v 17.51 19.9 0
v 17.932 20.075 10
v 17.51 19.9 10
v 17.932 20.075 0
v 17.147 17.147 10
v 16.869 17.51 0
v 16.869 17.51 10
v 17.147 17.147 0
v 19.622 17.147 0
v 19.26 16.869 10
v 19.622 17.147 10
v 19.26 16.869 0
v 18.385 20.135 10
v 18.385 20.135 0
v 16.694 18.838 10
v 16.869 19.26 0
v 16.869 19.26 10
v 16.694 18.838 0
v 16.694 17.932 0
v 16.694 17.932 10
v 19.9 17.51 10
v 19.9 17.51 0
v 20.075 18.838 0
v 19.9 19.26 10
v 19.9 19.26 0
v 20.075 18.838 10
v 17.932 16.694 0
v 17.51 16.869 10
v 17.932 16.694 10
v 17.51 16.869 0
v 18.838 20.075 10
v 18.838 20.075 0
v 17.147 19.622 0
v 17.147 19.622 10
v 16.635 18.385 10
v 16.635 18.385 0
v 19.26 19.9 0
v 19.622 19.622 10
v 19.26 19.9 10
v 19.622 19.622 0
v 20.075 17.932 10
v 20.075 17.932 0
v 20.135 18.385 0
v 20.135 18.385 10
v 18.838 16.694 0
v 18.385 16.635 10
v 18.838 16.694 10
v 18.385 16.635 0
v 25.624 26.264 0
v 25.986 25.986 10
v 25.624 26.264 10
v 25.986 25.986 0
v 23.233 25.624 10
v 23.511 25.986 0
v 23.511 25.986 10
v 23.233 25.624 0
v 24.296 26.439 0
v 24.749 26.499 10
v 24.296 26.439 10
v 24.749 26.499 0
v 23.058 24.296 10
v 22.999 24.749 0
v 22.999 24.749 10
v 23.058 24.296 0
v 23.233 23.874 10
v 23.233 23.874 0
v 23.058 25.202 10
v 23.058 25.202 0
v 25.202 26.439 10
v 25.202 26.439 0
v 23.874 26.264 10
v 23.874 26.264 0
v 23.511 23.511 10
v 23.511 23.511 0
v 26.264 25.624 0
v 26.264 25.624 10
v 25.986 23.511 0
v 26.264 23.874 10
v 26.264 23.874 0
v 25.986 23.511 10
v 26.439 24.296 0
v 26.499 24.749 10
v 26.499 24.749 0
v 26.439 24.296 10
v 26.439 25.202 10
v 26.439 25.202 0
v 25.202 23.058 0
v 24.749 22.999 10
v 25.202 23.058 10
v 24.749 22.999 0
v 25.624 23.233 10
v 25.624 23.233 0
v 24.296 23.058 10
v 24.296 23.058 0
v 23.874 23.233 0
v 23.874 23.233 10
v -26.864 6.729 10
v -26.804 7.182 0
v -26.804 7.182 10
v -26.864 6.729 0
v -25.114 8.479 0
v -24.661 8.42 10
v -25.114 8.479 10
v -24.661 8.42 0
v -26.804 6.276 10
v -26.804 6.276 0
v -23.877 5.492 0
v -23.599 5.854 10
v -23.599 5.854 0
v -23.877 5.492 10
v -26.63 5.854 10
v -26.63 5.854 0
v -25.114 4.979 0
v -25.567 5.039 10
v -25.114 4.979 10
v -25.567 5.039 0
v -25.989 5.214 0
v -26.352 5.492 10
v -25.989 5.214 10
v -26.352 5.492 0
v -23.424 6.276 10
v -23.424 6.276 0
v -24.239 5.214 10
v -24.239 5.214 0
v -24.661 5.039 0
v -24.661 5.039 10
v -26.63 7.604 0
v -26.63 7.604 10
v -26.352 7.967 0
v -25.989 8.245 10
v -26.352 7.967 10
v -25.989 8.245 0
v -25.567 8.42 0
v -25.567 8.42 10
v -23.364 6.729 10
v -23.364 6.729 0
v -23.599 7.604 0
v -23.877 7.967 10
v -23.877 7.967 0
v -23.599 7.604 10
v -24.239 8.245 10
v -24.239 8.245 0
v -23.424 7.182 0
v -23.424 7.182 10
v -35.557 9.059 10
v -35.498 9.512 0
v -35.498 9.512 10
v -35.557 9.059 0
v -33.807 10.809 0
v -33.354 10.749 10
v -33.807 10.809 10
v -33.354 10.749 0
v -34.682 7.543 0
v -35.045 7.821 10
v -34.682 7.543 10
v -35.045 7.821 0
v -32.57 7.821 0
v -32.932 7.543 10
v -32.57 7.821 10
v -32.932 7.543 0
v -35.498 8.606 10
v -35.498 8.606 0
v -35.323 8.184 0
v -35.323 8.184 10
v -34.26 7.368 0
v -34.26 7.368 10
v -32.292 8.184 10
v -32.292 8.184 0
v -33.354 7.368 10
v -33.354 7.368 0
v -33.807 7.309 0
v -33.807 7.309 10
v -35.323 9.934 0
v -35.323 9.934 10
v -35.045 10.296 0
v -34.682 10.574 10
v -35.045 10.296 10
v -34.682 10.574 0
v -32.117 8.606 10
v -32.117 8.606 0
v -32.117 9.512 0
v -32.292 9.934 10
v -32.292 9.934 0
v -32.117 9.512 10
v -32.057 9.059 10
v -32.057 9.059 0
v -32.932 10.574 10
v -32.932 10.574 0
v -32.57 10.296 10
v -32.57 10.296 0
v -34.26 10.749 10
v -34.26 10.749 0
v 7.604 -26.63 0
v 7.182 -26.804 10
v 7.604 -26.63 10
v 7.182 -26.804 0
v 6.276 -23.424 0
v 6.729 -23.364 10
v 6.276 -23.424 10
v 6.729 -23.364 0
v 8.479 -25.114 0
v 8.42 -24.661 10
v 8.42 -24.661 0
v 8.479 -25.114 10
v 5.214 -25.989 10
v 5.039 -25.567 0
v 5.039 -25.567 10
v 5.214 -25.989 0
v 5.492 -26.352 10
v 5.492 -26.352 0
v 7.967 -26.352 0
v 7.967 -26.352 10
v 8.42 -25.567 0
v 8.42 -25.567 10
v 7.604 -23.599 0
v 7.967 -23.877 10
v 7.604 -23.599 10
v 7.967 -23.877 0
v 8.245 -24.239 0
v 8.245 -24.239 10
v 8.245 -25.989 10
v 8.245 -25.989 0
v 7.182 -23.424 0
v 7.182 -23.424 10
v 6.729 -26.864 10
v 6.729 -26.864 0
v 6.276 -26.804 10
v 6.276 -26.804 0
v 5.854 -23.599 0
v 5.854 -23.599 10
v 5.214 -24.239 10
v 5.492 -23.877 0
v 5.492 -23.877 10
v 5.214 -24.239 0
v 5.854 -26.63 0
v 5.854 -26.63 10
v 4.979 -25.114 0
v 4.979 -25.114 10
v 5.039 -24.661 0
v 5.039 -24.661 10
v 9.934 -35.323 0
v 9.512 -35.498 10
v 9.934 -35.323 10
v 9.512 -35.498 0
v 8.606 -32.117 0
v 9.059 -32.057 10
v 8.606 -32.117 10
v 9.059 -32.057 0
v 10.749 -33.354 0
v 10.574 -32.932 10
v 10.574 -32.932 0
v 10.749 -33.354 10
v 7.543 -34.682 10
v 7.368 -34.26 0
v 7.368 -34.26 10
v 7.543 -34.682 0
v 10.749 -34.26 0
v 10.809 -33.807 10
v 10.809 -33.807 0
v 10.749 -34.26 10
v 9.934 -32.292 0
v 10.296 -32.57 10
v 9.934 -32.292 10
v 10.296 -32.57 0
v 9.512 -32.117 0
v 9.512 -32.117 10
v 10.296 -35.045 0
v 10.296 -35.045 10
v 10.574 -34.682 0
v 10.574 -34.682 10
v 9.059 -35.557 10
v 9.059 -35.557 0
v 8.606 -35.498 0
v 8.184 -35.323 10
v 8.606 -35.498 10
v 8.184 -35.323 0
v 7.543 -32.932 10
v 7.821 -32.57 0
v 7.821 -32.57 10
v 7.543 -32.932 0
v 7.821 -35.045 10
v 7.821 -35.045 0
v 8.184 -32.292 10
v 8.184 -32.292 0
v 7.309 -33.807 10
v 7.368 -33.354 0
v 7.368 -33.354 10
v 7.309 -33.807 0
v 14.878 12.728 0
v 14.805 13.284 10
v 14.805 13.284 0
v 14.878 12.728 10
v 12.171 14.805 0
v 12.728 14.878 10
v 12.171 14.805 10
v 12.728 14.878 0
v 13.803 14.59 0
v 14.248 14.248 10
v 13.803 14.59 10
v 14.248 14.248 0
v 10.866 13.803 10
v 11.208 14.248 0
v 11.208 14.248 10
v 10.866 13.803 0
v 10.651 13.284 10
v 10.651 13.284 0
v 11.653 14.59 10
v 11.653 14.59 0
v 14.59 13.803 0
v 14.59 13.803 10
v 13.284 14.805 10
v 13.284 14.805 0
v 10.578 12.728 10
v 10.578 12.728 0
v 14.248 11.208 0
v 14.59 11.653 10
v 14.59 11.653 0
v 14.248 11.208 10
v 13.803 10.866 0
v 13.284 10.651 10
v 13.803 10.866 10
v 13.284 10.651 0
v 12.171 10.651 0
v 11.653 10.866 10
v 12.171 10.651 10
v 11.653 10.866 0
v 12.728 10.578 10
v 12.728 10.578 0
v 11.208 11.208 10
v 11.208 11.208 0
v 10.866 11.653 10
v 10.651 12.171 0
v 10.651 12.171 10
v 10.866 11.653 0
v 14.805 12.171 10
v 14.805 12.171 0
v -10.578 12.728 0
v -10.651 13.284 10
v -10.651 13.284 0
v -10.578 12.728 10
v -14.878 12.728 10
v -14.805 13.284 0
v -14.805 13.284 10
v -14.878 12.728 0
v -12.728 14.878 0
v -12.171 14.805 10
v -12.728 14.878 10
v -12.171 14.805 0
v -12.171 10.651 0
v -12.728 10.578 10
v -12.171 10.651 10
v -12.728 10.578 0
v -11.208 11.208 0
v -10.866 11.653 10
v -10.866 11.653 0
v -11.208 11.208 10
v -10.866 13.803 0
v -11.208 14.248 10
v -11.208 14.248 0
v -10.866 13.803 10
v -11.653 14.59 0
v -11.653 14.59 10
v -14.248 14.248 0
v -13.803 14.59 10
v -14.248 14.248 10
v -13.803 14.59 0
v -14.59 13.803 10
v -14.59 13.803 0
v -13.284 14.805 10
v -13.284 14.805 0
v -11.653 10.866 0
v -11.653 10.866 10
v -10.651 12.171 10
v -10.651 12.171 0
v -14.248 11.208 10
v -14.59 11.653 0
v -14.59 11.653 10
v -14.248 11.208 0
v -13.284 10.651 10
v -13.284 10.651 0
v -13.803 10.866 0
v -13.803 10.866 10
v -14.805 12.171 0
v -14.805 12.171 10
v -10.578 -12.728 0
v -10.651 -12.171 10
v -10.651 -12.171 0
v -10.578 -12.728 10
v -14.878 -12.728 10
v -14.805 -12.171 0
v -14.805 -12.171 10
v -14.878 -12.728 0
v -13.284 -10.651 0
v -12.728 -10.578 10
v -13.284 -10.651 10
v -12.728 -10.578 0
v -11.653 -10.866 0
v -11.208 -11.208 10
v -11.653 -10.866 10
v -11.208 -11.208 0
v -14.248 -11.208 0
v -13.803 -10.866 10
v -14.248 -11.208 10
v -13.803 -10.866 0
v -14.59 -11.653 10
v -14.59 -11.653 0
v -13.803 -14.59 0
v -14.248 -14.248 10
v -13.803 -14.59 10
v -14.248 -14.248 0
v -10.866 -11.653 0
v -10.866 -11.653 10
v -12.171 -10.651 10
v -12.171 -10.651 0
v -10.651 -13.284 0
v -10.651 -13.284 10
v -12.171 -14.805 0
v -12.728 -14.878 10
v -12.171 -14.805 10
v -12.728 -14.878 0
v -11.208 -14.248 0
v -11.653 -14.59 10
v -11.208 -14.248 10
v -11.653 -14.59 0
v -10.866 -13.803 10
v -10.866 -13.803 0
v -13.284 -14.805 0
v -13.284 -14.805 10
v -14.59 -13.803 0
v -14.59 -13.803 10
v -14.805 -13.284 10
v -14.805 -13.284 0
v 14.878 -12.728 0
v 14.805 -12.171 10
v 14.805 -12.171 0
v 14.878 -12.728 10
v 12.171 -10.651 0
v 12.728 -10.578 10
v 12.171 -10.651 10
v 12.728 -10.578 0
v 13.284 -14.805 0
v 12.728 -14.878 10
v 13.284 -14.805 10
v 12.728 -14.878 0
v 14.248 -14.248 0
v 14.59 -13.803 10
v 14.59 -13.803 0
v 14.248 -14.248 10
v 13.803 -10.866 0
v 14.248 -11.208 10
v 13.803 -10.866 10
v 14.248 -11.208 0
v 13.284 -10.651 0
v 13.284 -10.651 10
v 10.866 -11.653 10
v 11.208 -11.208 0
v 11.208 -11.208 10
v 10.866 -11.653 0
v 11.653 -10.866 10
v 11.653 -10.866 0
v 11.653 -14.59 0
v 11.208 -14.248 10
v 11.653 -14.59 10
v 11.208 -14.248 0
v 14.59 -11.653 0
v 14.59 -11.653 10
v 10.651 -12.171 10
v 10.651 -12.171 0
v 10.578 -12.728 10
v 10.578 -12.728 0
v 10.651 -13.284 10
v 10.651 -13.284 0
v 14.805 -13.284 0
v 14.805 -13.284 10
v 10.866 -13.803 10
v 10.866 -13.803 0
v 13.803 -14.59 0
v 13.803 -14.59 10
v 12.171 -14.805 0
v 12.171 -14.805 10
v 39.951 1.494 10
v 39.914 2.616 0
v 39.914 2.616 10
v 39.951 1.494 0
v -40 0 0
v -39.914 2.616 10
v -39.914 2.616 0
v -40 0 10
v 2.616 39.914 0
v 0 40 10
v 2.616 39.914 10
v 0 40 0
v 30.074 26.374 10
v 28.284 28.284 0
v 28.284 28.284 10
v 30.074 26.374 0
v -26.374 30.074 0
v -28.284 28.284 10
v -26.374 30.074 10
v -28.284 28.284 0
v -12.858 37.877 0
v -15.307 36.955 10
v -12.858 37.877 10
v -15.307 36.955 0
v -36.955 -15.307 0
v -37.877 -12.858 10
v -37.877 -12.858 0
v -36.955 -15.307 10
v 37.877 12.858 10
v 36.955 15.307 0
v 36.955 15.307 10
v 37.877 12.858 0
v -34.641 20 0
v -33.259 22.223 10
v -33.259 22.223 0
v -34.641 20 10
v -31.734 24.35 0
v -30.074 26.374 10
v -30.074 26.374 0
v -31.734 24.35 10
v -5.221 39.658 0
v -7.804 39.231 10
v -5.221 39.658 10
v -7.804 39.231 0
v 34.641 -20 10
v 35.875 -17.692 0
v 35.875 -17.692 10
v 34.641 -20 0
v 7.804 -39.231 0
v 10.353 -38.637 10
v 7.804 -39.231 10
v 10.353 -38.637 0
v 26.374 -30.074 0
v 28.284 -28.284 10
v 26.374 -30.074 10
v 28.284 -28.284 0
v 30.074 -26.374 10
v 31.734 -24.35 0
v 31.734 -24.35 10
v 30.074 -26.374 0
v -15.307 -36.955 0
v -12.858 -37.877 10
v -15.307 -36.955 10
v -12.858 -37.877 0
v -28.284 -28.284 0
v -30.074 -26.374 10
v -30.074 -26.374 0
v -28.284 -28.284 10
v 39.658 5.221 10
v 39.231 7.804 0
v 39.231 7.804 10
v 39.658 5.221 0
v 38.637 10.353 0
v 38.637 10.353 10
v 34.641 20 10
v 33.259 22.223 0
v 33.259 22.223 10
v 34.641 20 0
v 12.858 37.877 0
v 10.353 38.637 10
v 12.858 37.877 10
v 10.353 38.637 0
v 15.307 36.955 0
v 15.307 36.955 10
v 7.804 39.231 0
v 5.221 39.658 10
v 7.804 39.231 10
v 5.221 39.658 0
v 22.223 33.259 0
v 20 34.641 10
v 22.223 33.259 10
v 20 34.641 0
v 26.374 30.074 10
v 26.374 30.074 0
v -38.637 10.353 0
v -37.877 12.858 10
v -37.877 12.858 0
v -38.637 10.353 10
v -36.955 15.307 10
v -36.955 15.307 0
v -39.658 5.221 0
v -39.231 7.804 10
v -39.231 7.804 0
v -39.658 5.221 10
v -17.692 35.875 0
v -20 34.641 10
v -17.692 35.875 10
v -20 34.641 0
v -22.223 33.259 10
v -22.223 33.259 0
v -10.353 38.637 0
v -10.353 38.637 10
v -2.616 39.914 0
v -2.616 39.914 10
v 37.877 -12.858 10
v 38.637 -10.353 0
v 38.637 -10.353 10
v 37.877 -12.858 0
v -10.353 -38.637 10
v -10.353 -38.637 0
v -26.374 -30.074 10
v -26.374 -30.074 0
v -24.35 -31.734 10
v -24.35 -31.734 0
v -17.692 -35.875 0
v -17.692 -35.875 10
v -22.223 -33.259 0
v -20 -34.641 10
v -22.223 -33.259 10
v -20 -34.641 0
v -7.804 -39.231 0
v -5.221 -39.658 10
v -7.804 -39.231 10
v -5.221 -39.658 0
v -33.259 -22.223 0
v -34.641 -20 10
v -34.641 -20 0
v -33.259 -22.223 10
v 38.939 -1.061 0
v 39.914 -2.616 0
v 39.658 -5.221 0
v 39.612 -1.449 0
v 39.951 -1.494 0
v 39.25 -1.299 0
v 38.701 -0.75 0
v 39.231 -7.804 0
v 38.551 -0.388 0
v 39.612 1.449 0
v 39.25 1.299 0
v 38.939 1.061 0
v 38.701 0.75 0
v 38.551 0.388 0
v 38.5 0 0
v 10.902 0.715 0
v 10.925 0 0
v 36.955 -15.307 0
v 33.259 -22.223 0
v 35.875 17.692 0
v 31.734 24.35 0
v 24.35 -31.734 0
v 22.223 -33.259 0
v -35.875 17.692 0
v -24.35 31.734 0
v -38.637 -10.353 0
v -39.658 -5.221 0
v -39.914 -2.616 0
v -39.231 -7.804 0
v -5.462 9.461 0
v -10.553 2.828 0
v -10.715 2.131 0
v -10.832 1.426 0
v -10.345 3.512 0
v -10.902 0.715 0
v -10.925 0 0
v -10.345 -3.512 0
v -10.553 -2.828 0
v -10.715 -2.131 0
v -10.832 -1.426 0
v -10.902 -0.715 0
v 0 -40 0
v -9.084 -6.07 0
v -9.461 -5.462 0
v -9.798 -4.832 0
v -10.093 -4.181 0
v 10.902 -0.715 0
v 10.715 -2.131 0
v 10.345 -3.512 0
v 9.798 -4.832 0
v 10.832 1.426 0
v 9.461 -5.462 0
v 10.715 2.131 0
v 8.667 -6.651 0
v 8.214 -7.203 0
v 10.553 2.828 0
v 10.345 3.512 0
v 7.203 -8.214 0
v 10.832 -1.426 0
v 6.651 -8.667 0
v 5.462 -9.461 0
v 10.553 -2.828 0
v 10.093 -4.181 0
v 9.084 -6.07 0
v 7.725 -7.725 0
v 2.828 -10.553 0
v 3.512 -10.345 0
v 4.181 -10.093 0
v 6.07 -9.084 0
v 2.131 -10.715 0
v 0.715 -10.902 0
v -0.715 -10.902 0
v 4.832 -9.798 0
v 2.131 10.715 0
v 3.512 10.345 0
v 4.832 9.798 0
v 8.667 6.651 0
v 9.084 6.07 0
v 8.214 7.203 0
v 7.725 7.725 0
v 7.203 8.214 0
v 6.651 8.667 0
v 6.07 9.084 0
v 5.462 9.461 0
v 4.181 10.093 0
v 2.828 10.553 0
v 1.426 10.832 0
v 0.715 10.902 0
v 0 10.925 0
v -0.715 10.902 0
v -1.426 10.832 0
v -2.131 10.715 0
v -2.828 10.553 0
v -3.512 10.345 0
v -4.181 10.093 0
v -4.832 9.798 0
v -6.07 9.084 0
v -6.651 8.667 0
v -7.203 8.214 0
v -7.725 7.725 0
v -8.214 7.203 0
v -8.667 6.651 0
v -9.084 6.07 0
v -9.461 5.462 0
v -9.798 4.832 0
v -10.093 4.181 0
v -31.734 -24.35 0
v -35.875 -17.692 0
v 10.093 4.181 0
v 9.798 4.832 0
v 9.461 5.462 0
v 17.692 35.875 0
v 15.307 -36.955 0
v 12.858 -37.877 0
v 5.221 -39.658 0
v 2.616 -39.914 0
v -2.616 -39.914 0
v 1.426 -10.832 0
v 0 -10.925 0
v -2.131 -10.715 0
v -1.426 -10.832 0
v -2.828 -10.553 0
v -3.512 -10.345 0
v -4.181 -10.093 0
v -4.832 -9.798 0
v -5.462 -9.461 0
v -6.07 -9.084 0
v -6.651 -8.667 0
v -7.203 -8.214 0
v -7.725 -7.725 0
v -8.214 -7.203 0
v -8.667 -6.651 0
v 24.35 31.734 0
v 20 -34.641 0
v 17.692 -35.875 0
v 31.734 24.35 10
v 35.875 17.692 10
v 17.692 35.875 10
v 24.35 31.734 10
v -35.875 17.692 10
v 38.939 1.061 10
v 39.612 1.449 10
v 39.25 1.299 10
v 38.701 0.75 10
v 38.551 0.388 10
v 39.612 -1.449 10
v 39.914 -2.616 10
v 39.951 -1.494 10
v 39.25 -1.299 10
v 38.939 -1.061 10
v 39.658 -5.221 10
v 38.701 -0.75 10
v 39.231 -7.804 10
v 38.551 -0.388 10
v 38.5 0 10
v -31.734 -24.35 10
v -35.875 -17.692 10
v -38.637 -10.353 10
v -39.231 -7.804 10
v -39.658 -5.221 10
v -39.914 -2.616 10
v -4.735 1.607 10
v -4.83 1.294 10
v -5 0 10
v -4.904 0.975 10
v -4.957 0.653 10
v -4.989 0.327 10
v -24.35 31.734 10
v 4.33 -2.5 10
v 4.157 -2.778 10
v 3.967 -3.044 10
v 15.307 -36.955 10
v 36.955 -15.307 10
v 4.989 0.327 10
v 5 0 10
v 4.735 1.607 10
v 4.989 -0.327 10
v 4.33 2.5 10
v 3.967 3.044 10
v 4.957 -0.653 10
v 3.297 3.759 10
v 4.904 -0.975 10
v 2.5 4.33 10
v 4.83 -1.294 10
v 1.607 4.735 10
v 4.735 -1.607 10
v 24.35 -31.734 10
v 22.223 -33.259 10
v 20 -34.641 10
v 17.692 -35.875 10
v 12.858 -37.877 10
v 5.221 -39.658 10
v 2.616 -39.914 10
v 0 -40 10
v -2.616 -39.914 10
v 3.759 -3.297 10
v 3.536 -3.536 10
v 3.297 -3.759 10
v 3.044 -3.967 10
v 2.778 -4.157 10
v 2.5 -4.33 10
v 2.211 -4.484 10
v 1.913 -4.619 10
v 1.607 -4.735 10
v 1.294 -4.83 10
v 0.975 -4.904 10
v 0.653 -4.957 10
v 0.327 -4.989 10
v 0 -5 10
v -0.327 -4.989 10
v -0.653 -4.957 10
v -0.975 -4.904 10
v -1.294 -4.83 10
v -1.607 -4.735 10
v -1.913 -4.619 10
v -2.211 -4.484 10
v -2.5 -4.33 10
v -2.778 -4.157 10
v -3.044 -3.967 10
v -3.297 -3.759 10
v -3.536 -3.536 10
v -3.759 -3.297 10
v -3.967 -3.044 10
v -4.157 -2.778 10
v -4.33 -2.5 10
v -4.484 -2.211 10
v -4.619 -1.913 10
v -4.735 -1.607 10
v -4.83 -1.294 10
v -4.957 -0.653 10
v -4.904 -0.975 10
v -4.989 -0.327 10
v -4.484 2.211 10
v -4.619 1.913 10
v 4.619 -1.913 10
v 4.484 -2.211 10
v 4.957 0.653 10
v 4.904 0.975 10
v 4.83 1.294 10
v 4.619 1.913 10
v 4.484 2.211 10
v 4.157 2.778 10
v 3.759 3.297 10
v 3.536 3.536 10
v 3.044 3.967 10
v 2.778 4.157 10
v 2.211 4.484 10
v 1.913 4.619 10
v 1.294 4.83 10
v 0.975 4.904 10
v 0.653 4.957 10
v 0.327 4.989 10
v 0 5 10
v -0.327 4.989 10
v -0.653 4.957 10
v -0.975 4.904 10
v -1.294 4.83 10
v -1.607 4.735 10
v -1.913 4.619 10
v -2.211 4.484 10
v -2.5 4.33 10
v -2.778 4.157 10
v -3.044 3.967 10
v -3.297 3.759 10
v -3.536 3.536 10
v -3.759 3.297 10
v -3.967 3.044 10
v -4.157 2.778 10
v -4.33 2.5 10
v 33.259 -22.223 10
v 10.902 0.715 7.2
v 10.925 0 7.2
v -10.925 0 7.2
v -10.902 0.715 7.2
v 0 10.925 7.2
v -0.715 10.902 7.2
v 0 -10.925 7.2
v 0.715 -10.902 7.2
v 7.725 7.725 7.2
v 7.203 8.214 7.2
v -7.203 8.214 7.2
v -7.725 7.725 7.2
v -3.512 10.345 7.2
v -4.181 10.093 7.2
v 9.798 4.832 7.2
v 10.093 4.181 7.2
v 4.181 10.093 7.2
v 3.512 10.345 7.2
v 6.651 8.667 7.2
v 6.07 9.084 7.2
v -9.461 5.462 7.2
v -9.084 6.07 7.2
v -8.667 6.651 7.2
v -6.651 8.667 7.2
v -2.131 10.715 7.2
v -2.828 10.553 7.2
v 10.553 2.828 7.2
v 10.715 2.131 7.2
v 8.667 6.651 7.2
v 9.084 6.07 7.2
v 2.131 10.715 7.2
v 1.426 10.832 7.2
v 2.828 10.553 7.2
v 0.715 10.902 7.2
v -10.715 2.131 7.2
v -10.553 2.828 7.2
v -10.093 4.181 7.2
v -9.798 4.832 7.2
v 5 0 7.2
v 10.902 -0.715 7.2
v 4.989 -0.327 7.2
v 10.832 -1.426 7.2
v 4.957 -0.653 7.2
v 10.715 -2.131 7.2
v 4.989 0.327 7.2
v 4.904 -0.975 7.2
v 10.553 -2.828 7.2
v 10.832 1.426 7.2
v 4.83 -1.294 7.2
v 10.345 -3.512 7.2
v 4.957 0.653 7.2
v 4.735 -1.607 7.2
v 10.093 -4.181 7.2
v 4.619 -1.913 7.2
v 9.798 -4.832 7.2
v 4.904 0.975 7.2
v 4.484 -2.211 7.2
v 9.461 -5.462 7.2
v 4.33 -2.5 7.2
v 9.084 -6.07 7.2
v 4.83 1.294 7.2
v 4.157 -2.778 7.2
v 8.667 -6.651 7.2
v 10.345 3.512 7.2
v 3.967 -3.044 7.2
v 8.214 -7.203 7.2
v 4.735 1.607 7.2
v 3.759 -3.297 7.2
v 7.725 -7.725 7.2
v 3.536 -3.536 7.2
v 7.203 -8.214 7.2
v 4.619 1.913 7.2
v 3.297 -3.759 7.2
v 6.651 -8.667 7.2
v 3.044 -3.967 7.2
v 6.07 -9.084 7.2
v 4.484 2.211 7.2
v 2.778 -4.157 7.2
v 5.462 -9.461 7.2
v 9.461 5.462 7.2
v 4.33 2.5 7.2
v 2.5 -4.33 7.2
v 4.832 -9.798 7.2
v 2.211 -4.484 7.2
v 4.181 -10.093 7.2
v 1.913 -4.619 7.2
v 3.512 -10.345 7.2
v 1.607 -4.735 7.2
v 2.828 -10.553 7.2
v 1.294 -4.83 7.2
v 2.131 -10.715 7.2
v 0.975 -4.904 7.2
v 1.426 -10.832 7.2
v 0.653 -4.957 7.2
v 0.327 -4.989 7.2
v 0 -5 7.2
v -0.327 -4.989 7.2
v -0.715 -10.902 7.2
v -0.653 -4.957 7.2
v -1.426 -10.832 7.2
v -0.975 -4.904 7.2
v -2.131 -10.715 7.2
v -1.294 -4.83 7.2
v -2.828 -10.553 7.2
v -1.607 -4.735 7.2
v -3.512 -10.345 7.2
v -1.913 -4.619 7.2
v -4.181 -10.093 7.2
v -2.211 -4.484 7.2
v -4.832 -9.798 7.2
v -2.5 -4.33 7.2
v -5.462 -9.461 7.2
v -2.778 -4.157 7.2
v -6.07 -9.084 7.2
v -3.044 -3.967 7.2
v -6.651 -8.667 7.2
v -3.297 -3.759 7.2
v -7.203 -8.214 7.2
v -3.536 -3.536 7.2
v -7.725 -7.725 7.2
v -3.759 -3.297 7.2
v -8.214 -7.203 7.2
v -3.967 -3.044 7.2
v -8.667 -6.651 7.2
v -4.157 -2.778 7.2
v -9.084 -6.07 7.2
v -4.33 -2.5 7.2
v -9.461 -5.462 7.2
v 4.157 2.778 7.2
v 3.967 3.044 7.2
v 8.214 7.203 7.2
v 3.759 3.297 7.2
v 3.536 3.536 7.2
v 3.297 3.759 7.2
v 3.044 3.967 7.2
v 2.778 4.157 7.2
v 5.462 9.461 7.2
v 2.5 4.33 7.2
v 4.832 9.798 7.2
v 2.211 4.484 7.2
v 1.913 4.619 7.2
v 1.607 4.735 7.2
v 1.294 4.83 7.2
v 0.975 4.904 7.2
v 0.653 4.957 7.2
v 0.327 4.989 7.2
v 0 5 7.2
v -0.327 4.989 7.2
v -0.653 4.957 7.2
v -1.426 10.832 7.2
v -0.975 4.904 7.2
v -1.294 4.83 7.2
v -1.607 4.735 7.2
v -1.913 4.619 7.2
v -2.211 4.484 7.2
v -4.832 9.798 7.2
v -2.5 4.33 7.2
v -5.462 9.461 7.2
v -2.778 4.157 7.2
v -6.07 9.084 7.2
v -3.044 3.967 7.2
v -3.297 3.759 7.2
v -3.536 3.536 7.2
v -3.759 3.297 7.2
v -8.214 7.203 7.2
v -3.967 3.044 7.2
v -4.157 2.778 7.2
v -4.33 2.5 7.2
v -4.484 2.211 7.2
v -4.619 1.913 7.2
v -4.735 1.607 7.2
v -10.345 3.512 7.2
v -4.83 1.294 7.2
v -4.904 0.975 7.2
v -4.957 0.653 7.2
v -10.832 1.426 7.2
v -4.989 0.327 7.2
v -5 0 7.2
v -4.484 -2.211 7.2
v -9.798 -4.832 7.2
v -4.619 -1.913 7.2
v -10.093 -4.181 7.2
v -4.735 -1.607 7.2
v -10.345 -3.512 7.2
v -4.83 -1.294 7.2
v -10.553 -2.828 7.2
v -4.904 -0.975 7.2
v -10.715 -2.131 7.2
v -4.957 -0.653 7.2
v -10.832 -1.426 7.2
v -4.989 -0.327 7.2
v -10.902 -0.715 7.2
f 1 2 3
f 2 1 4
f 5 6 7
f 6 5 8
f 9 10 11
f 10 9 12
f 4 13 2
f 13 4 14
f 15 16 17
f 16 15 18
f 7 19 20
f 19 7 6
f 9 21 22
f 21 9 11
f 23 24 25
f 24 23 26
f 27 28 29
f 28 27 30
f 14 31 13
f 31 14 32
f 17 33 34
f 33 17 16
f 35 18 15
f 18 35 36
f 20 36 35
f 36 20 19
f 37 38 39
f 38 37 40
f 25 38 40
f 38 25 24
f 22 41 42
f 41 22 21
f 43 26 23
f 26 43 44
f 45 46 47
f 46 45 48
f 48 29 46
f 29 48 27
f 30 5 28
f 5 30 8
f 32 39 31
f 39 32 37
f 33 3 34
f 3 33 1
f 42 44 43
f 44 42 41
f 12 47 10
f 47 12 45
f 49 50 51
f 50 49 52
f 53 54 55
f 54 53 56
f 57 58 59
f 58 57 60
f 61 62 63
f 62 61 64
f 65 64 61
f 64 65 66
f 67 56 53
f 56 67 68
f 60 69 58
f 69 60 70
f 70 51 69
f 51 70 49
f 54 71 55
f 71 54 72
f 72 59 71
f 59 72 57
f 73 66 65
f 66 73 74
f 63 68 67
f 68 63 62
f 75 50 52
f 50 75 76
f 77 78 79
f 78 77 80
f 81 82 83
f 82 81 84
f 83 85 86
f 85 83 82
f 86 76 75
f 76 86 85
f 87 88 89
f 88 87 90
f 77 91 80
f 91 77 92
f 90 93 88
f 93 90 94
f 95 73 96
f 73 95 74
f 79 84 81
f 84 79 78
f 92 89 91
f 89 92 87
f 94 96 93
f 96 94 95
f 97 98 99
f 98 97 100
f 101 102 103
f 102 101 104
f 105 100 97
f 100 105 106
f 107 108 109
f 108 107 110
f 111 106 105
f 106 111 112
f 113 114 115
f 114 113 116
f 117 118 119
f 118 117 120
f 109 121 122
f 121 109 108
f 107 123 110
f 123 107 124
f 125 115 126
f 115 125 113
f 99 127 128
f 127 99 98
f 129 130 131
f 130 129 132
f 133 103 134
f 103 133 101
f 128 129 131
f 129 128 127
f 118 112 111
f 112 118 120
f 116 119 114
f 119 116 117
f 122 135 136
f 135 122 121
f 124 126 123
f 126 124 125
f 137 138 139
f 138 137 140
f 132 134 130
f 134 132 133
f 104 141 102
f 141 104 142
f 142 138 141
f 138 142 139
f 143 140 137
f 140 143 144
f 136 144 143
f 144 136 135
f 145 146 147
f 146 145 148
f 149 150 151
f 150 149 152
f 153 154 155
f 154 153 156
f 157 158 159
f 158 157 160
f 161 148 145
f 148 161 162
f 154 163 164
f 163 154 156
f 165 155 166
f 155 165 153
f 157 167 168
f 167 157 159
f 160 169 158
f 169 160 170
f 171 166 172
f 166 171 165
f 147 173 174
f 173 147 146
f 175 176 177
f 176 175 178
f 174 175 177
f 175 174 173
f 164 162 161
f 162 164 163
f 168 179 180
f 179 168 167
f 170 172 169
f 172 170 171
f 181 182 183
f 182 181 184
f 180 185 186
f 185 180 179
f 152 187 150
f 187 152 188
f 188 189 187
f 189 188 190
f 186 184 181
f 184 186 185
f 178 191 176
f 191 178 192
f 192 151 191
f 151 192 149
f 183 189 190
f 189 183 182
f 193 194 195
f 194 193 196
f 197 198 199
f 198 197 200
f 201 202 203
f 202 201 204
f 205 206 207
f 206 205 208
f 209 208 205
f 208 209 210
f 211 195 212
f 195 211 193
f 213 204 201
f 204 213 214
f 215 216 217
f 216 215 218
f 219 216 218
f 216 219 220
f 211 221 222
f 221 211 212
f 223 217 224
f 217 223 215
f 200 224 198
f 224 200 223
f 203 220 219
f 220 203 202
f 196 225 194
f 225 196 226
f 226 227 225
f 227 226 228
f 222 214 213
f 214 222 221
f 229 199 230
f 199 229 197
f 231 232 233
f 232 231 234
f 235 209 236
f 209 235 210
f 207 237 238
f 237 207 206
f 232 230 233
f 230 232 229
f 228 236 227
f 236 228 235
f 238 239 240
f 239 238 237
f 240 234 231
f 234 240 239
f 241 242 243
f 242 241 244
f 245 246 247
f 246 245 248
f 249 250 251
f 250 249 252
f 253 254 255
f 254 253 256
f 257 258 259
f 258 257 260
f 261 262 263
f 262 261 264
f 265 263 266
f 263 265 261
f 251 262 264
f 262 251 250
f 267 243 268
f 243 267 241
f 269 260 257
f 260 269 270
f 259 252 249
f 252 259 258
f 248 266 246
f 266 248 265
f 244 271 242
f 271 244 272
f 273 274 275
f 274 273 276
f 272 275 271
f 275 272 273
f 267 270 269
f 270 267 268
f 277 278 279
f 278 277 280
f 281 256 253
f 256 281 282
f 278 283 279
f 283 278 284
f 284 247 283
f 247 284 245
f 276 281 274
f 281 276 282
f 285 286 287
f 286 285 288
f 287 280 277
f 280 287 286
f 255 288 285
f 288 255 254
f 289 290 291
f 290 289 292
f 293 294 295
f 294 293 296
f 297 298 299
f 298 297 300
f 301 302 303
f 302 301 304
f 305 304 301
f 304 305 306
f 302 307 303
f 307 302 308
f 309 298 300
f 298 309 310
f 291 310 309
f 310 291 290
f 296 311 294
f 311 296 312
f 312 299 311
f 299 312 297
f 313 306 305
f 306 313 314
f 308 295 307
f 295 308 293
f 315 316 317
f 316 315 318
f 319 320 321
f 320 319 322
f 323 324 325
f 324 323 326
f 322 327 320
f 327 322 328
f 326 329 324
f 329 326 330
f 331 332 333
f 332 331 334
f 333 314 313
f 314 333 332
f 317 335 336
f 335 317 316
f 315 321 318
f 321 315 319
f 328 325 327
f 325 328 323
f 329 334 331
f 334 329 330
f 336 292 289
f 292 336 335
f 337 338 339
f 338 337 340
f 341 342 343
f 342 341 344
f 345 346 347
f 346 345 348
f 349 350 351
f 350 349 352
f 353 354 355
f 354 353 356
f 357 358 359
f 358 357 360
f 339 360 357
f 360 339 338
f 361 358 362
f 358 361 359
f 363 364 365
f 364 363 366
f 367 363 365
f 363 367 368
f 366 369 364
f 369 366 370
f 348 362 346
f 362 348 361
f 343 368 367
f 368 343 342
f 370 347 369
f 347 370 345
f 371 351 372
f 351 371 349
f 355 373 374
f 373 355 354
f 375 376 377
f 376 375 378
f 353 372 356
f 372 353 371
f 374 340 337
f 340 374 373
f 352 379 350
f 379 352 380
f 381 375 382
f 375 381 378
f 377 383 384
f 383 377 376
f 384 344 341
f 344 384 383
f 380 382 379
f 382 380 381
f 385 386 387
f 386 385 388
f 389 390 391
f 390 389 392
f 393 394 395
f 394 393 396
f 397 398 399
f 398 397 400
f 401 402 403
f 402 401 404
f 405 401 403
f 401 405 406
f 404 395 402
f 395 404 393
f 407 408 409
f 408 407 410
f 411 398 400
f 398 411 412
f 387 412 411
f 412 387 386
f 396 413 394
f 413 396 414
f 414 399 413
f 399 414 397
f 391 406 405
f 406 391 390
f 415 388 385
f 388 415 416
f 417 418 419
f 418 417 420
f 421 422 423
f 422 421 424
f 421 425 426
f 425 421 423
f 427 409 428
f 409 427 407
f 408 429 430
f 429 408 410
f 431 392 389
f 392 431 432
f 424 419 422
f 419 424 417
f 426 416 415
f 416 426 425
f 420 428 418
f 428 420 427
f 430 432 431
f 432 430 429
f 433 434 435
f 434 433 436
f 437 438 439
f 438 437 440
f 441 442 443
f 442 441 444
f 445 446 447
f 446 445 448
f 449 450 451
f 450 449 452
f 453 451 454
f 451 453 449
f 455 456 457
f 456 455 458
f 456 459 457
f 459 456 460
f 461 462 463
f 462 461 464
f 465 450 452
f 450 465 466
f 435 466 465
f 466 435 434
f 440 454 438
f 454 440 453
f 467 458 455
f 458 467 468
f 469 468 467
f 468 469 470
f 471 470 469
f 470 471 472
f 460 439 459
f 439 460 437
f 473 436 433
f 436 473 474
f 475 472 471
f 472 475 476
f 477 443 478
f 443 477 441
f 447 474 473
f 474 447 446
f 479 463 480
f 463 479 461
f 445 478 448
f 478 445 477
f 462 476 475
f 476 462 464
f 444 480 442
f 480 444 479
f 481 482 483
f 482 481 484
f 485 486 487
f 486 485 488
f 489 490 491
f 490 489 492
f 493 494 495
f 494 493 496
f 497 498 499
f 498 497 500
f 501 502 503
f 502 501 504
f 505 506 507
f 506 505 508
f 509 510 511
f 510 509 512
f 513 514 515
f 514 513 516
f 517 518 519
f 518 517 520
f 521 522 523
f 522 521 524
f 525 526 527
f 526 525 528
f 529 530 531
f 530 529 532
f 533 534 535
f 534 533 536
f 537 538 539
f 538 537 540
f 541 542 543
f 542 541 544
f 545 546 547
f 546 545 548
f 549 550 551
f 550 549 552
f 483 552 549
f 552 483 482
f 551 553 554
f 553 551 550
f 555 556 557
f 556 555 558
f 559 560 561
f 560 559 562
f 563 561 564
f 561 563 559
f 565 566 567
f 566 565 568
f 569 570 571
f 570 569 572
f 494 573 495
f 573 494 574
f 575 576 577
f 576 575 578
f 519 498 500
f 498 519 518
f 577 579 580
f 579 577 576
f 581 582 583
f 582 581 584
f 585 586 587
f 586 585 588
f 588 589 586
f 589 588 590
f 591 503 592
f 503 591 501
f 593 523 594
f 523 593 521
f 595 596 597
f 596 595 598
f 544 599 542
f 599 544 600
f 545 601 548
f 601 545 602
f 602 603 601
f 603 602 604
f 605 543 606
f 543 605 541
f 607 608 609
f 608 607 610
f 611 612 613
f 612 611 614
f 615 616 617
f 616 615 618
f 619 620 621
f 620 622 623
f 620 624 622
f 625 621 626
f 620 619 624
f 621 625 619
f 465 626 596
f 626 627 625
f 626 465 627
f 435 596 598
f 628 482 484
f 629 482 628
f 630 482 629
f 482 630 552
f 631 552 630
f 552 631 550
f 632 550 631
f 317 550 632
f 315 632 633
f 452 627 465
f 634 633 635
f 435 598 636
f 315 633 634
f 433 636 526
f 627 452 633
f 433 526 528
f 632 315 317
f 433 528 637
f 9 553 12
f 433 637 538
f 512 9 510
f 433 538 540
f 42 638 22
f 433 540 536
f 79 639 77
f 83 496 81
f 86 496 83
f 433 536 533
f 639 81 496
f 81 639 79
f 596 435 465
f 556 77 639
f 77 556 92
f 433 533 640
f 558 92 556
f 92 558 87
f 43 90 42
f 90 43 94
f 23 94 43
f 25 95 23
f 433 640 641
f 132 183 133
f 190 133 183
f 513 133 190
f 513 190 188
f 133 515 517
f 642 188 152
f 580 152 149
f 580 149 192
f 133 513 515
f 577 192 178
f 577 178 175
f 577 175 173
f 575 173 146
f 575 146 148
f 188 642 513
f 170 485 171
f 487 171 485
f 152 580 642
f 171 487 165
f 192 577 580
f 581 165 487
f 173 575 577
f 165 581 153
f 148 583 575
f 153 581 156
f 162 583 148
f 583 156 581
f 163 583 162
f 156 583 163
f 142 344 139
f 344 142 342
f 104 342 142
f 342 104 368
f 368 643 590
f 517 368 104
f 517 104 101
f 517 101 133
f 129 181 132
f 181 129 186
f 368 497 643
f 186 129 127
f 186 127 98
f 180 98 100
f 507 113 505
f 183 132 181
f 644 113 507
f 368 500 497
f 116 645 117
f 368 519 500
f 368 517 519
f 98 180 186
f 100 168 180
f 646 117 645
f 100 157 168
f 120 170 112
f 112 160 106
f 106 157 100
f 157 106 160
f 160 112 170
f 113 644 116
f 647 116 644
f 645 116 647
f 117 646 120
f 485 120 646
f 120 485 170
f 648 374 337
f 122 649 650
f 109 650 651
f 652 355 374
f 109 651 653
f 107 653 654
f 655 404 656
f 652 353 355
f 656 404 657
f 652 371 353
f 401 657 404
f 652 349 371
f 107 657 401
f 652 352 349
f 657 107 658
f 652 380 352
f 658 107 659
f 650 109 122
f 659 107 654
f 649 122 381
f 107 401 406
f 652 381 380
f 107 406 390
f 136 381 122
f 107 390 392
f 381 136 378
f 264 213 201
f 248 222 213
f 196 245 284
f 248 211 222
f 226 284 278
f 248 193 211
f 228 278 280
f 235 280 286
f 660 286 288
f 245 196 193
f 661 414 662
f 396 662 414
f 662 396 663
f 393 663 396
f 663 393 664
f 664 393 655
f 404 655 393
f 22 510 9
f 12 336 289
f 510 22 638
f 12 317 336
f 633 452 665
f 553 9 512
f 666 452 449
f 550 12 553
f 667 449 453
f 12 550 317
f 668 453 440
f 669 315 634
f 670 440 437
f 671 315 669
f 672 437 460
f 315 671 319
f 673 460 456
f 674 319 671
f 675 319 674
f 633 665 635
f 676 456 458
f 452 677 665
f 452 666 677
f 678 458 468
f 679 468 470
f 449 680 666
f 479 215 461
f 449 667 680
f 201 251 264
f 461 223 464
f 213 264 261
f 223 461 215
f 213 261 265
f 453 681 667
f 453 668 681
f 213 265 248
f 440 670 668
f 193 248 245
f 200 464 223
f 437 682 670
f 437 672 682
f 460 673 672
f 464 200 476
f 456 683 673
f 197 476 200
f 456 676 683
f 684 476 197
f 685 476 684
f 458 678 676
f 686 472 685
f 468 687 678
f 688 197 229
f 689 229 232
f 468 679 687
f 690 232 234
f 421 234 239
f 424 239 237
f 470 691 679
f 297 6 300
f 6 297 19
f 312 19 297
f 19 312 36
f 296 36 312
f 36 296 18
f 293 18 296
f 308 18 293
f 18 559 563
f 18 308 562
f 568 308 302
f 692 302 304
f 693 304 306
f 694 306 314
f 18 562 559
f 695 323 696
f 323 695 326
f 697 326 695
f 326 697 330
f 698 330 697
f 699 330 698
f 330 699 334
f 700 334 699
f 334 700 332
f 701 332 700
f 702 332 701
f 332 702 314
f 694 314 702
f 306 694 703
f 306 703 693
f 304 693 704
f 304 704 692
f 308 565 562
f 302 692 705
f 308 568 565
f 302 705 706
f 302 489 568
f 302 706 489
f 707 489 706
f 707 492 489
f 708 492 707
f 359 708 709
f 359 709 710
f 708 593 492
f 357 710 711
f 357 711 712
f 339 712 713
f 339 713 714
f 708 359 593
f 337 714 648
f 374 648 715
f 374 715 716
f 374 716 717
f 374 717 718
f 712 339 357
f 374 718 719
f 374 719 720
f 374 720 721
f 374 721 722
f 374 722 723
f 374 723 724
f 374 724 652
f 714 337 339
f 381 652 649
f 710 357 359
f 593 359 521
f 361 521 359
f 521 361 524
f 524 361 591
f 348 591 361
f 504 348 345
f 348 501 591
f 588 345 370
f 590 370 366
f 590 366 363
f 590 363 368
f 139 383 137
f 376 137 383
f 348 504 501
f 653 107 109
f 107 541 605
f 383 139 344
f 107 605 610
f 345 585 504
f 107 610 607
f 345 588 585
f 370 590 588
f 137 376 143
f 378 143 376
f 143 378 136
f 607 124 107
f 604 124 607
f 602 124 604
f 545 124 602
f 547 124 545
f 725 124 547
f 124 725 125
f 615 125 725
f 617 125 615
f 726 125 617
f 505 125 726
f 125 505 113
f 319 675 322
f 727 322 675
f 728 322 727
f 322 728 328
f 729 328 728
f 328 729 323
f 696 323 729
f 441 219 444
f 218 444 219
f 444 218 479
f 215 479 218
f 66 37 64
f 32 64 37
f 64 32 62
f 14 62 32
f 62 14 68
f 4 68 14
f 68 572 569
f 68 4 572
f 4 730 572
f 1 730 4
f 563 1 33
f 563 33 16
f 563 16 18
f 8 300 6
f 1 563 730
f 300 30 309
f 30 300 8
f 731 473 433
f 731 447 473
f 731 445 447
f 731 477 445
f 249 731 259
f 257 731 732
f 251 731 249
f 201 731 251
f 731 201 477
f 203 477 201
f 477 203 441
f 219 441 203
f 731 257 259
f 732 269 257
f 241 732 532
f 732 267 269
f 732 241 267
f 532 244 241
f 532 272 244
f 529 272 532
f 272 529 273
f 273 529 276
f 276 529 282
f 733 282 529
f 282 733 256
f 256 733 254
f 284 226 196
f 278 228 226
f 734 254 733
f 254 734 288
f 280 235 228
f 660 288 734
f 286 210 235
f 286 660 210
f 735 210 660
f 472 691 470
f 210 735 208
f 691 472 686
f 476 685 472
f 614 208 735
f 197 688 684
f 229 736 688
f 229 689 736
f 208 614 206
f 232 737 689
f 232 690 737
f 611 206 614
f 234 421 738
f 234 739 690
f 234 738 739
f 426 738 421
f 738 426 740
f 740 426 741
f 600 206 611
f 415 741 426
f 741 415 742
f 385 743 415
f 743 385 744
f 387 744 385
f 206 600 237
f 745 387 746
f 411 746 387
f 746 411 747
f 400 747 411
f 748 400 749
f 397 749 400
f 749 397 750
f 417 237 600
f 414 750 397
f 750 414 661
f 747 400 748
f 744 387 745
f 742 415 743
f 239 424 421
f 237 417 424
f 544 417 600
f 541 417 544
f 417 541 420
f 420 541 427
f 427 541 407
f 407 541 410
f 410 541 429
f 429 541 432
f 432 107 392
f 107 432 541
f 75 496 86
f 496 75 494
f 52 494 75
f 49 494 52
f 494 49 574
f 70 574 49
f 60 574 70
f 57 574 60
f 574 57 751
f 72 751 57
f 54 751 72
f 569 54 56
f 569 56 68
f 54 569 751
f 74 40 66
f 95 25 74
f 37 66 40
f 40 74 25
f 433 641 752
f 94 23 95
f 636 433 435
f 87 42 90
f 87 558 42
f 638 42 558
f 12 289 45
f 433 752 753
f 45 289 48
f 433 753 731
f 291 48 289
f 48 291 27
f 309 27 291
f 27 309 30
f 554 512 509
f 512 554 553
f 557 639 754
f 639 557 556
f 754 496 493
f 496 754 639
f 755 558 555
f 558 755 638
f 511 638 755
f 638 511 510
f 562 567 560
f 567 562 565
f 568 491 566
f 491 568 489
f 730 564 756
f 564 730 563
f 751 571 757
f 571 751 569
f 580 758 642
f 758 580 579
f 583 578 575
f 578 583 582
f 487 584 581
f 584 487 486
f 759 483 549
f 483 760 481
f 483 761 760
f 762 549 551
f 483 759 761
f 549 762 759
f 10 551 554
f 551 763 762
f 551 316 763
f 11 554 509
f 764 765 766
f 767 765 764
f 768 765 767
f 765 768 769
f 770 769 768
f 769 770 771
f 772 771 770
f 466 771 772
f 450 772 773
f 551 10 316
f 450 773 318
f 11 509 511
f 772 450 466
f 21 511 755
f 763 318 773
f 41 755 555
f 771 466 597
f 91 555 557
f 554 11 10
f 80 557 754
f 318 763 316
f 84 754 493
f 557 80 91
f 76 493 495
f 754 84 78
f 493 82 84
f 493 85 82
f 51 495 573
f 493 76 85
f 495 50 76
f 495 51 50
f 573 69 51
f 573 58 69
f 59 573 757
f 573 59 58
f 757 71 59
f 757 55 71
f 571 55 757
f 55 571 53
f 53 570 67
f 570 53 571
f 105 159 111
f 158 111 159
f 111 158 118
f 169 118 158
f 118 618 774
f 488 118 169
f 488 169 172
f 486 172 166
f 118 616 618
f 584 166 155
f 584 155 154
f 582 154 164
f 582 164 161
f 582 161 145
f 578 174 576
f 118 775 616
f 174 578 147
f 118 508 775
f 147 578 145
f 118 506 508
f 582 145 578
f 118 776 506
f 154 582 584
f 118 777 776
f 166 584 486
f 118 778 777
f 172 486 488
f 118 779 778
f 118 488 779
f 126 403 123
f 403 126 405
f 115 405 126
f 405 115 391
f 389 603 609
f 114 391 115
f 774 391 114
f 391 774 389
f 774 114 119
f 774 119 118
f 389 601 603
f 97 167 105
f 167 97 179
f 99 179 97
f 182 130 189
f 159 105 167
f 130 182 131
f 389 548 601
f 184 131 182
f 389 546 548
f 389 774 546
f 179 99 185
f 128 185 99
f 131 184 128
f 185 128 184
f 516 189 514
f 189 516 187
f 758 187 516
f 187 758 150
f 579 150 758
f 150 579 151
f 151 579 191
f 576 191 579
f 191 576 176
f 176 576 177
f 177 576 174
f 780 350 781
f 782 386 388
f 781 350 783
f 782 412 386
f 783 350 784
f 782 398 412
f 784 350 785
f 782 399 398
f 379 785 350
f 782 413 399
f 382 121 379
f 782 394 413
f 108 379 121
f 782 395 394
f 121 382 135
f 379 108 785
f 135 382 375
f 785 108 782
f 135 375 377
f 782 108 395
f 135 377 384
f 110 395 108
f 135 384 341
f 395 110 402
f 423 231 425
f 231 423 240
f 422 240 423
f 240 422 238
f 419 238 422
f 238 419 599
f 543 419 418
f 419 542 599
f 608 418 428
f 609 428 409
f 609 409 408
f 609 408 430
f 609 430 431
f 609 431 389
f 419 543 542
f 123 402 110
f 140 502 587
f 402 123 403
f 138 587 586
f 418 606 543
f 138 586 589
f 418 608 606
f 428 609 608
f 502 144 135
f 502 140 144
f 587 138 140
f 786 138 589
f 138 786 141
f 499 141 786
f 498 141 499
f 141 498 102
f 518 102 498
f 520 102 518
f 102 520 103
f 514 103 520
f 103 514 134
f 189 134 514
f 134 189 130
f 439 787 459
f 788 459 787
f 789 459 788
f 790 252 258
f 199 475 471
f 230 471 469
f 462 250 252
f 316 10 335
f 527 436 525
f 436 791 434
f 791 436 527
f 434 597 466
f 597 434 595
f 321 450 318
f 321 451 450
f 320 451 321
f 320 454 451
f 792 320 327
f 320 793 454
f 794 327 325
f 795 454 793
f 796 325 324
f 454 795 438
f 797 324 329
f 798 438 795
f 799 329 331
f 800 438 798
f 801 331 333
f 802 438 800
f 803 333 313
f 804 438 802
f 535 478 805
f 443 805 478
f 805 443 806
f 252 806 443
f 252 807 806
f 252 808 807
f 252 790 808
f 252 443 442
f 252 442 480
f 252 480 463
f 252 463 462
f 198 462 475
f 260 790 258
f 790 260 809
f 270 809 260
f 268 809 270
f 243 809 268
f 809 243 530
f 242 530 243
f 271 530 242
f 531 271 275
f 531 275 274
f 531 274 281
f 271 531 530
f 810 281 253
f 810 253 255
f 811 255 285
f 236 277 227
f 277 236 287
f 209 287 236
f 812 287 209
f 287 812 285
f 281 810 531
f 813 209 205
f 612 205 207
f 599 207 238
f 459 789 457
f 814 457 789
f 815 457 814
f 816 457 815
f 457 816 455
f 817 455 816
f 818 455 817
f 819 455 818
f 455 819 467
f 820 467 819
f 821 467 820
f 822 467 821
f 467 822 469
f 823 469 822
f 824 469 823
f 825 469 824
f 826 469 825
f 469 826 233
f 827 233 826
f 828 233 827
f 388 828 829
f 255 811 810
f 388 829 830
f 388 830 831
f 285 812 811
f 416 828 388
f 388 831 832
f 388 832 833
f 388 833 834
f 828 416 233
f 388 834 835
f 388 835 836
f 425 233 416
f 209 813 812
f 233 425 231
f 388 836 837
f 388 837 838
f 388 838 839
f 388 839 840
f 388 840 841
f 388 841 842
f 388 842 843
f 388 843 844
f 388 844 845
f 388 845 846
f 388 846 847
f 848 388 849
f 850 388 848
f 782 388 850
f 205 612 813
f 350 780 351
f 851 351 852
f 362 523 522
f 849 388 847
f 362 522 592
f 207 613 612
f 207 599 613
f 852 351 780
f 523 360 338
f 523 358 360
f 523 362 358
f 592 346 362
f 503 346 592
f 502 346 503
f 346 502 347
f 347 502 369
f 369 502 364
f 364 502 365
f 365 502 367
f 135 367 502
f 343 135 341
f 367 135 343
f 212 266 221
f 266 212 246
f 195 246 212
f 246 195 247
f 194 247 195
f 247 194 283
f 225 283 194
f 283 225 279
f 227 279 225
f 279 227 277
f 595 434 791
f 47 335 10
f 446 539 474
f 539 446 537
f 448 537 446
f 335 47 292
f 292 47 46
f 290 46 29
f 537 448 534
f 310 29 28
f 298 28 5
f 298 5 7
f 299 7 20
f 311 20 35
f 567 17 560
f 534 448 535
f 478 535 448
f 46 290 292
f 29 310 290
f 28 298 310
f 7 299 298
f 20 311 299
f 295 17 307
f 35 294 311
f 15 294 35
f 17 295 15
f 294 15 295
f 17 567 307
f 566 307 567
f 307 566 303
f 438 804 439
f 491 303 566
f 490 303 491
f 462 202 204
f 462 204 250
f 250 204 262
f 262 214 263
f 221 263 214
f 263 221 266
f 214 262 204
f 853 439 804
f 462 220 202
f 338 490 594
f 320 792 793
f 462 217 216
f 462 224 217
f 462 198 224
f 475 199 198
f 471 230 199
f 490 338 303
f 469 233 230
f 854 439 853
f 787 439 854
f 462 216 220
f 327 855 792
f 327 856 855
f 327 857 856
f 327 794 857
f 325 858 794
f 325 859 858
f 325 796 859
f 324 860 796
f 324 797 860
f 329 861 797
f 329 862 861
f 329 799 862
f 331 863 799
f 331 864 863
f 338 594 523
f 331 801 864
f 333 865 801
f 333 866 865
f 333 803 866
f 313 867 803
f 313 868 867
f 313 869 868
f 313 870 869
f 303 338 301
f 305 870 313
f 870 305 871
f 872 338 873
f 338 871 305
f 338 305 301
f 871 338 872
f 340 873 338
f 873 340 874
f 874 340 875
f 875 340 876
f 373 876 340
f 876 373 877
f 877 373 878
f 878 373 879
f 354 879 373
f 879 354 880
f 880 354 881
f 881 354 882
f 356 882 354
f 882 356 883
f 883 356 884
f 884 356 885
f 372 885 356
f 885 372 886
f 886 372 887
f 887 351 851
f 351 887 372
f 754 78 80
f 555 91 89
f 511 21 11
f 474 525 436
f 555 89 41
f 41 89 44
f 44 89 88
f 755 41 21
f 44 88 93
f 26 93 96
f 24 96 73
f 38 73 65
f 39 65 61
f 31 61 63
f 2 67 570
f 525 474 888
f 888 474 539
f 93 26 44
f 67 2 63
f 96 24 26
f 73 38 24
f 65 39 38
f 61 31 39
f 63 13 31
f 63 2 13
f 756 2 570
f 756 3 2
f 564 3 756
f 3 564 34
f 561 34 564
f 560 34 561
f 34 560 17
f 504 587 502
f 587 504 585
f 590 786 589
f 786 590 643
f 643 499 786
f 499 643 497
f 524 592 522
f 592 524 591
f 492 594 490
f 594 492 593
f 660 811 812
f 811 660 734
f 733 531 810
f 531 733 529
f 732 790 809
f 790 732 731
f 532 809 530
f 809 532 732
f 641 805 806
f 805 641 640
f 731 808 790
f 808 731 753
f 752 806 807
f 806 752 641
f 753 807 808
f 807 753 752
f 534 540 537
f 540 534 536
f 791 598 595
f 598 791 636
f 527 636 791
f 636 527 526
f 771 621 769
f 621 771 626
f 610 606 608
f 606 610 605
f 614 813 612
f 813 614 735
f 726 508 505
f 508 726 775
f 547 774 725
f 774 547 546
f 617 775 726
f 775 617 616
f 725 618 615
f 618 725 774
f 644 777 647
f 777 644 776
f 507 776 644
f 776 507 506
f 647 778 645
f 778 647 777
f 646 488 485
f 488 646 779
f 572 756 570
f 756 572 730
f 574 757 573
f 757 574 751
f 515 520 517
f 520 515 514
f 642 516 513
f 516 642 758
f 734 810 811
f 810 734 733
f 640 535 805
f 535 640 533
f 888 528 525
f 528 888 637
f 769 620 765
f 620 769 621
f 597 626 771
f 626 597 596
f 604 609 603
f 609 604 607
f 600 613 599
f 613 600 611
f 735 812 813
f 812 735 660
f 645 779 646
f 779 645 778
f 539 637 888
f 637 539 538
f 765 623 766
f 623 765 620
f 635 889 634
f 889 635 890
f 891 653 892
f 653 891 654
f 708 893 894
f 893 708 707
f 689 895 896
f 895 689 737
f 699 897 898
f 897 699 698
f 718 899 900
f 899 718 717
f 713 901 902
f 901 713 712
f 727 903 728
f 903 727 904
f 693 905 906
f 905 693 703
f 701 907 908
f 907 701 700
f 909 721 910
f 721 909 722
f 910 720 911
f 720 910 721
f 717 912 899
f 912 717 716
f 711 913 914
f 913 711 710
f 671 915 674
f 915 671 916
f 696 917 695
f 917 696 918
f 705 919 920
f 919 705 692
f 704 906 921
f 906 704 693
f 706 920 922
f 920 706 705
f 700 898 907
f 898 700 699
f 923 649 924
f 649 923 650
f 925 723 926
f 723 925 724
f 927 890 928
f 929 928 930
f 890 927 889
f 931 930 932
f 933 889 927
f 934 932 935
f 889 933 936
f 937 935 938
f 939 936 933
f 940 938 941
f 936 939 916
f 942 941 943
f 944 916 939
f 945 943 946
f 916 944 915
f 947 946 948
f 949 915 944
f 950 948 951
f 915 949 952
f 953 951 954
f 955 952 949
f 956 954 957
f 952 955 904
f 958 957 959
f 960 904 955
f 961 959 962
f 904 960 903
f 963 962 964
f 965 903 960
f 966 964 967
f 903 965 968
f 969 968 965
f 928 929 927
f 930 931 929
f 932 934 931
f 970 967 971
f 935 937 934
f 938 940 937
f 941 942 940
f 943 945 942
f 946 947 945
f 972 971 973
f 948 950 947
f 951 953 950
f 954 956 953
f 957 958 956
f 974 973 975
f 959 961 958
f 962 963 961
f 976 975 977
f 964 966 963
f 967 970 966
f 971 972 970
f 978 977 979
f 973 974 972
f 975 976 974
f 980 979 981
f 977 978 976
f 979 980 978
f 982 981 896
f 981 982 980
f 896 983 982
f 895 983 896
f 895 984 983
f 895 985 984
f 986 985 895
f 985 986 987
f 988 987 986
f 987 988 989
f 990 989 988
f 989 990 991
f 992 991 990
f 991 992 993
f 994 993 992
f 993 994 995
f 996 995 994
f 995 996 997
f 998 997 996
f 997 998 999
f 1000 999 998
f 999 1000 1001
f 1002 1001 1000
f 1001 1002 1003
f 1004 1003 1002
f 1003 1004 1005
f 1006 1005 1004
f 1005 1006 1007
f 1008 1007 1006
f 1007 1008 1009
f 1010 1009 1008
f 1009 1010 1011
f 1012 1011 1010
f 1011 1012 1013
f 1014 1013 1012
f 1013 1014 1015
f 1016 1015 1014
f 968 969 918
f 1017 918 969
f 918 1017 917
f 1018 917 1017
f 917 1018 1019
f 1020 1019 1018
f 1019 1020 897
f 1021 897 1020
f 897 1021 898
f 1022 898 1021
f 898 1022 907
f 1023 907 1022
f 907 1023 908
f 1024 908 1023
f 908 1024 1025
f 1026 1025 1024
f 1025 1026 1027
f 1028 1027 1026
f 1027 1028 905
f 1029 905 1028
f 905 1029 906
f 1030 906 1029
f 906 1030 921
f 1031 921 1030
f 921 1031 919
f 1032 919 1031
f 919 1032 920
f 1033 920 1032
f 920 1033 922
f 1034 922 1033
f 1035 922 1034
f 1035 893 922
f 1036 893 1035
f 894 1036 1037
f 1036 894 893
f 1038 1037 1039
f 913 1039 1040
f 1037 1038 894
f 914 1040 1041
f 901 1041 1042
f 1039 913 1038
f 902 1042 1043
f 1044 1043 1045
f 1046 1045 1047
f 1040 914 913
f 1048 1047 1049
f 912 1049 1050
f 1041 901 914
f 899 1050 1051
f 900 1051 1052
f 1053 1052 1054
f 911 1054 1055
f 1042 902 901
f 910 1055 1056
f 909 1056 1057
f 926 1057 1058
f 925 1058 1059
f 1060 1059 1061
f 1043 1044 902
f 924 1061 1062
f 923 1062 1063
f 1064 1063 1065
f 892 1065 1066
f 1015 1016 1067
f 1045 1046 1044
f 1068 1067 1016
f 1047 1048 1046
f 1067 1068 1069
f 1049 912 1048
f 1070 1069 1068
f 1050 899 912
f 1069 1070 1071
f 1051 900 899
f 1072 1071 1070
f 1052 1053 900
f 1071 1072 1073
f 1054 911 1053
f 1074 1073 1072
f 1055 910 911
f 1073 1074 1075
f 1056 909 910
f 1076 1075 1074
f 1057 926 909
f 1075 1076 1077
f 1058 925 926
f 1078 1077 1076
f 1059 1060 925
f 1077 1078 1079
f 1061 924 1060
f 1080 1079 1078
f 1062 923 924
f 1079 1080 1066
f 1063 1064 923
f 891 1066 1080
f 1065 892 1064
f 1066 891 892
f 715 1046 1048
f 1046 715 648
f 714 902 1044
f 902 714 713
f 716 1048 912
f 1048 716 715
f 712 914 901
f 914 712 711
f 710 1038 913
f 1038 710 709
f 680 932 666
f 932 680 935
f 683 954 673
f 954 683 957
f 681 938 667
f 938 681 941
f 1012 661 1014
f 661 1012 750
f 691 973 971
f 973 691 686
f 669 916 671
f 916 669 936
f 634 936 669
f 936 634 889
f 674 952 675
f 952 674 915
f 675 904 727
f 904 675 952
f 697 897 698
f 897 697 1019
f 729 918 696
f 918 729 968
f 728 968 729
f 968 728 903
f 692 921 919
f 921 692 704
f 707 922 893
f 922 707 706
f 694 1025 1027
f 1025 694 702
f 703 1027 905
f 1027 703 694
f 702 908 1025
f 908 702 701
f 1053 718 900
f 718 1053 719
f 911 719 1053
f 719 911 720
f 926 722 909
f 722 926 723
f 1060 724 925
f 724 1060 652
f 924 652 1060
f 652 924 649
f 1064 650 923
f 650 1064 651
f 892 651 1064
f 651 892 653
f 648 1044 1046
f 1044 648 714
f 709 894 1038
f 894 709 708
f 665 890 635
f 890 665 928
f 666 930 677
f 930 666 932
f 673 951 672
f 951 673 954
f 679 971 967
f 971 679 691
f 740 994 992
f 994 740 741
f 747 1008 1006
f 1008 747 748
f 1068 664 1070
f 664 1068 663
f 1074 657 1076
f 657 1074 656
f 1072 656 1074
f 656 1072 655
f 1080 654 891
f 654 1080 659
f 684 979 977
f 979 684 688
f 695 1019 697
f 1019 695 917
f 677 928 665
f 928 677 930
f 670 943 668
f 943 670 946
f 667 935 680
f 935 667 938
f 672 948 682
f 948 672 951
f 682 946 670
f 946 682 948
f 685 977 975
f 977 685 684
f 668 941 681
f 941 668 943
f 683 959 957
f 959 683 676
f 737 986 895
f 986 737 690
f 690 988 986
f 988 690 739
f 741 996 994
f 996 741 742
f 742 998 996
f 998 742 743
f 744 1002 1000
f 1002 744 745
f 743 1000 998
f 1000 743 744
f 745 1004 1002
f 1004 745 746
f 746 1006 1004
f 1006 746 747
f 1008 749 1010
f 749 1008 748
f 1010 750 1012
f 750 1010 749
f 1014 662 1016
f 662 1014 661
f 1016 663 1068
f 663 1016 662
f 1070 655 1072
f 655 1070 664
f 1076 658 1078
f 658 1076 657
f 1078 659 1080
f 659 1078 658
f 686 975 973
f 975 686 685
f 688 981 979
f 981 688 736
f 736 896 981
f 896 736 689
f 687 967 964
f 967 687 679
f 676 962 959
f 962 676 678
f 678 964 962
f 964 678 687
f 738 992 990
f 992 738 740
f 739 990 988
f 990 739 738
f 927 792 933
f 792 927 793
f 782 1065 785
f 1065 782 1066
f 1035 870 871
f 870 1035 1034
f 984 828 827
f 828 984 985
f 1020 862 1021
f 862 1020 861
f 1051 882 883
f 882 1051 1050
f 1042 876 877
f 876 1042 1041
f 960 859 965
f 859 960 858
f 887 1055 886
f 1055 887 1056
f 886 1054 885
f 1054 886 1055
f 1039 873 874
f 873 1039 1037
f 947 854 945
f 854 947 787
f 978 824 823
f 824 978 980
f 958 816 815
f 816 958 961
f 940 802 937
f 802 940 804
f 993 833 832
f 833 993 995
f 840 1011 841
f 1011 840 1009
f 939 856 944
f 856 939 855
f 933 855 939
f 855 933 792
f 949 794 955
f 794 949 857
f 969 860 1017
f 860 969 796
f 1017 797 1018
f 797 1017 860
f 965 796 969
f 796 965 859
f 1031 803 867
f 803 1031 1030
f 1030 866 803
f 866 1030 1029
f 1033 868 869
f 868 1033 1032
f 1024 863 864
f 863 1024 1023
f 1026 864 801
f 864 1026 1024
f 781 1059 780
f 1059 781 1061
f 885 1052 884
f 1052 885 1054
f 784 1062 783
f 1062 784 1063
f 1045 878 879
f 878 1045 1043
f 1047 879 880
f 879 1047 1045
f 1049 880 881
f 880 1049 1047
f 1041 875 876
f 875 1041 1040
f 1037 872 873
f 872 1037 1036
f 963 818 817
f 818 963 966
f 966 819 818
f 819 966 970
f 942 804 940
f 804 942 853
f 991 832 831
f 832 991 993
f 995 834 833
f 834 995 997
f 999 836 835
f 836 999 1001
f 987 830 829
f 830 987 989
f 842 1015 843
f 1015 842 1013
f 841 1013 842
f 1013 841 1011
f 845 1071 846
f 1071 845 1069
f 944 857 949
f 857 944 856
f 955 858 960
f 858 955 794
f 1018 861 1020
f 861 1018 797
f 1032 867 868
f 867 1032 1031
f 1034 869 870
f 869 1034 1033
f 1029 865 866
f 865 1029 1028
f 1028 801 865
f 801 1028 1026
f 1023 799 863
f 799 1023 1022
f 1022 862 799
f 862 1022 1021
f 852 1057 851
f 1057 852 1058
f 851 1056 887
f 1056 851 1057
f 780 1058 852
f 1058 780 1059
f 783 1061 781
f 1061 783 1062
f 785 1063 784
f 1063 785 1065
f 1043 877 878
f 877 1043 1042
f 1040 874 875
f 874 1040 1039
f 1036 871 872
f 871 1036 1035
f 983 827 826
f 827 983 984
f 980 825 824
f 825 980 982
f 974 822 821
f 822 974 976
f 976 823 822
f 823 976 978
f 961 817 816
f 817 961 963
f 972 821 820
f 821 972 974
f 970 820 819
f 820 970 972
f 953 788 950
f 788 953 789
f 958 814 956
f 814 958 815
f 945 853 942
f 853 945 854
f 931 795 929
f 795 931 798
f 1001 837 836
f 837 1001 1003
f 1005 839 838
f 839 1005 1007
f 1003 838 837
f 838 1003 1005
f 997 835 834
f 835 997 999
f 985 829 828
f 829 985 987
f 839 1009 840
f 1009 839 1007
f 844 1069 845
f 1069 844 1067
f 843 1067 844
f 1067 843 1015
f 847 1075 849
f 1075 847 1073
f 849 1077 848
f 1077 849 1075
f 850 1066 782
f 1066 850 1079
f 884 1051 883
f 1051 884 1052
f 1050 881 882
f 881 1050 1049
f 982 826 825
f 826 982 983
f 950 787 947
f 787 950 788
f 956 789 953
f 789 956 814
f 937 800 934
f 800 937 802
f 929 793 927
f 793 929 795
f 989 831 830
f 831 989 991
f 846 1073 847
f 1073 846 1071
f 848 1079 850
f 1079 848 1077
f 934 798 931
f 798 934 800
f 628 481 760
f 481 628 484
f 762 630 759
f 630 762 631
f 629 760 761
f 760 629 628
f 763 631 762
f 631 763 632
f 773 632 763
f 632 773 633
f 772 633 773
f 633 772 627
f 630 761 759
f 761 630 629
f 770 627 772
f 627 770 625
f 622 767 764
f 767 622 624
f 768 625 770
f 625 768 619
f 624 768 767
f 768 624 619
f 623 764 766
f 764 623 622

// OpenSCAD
// Gen-EB — TOP SPIDER HUB (2026-11-02 pedestal frame). Print x1. As modelled (= assembled) the bearing seat opens DOWNWARD toward
// rotor B; the print packs FLIP it (seat opening UP) so the seat needs no bridge. The upper 608 is pressed in from below,
// against the 2.8 mm floor. 3 spider arms bolt on top (2x M3x16 + nyloc each). Carries only lateral loads (the weight goes into the pedestal).
include <parameters.scad>;
$fn = 96;
difference() {
    cylinder(d=spider_hub_od, h=spider_hub_t);
    translate([0, 0, -0.1]) cylinder(d=bearing_d, h=bearing_h + 0.1);
    translate([0, 0, -0.1]) cylinder(d=endbell_shaft_clear, h=spider_hub_t + 1);
    for (a = arm_angles) for (r = arm_bolt_r) rotate([0, 0, a]) translate([r, 0, -0.1]) cylinder(d=m3_clear, h=spider_hub_t + 1, $fn=24);
    for (a = brace_angles) translate([brace_r * cos(a), brace_r * sin(a), -0.1]) cylinder(d=brace_d, h=spider_hub_t + 1, $fn=24);
    translate([spider_hub_od / 2, 0, -0.1]) cylinder(d=index_notch_d, h=spider_hub_t + 1, $fn=24);
}
